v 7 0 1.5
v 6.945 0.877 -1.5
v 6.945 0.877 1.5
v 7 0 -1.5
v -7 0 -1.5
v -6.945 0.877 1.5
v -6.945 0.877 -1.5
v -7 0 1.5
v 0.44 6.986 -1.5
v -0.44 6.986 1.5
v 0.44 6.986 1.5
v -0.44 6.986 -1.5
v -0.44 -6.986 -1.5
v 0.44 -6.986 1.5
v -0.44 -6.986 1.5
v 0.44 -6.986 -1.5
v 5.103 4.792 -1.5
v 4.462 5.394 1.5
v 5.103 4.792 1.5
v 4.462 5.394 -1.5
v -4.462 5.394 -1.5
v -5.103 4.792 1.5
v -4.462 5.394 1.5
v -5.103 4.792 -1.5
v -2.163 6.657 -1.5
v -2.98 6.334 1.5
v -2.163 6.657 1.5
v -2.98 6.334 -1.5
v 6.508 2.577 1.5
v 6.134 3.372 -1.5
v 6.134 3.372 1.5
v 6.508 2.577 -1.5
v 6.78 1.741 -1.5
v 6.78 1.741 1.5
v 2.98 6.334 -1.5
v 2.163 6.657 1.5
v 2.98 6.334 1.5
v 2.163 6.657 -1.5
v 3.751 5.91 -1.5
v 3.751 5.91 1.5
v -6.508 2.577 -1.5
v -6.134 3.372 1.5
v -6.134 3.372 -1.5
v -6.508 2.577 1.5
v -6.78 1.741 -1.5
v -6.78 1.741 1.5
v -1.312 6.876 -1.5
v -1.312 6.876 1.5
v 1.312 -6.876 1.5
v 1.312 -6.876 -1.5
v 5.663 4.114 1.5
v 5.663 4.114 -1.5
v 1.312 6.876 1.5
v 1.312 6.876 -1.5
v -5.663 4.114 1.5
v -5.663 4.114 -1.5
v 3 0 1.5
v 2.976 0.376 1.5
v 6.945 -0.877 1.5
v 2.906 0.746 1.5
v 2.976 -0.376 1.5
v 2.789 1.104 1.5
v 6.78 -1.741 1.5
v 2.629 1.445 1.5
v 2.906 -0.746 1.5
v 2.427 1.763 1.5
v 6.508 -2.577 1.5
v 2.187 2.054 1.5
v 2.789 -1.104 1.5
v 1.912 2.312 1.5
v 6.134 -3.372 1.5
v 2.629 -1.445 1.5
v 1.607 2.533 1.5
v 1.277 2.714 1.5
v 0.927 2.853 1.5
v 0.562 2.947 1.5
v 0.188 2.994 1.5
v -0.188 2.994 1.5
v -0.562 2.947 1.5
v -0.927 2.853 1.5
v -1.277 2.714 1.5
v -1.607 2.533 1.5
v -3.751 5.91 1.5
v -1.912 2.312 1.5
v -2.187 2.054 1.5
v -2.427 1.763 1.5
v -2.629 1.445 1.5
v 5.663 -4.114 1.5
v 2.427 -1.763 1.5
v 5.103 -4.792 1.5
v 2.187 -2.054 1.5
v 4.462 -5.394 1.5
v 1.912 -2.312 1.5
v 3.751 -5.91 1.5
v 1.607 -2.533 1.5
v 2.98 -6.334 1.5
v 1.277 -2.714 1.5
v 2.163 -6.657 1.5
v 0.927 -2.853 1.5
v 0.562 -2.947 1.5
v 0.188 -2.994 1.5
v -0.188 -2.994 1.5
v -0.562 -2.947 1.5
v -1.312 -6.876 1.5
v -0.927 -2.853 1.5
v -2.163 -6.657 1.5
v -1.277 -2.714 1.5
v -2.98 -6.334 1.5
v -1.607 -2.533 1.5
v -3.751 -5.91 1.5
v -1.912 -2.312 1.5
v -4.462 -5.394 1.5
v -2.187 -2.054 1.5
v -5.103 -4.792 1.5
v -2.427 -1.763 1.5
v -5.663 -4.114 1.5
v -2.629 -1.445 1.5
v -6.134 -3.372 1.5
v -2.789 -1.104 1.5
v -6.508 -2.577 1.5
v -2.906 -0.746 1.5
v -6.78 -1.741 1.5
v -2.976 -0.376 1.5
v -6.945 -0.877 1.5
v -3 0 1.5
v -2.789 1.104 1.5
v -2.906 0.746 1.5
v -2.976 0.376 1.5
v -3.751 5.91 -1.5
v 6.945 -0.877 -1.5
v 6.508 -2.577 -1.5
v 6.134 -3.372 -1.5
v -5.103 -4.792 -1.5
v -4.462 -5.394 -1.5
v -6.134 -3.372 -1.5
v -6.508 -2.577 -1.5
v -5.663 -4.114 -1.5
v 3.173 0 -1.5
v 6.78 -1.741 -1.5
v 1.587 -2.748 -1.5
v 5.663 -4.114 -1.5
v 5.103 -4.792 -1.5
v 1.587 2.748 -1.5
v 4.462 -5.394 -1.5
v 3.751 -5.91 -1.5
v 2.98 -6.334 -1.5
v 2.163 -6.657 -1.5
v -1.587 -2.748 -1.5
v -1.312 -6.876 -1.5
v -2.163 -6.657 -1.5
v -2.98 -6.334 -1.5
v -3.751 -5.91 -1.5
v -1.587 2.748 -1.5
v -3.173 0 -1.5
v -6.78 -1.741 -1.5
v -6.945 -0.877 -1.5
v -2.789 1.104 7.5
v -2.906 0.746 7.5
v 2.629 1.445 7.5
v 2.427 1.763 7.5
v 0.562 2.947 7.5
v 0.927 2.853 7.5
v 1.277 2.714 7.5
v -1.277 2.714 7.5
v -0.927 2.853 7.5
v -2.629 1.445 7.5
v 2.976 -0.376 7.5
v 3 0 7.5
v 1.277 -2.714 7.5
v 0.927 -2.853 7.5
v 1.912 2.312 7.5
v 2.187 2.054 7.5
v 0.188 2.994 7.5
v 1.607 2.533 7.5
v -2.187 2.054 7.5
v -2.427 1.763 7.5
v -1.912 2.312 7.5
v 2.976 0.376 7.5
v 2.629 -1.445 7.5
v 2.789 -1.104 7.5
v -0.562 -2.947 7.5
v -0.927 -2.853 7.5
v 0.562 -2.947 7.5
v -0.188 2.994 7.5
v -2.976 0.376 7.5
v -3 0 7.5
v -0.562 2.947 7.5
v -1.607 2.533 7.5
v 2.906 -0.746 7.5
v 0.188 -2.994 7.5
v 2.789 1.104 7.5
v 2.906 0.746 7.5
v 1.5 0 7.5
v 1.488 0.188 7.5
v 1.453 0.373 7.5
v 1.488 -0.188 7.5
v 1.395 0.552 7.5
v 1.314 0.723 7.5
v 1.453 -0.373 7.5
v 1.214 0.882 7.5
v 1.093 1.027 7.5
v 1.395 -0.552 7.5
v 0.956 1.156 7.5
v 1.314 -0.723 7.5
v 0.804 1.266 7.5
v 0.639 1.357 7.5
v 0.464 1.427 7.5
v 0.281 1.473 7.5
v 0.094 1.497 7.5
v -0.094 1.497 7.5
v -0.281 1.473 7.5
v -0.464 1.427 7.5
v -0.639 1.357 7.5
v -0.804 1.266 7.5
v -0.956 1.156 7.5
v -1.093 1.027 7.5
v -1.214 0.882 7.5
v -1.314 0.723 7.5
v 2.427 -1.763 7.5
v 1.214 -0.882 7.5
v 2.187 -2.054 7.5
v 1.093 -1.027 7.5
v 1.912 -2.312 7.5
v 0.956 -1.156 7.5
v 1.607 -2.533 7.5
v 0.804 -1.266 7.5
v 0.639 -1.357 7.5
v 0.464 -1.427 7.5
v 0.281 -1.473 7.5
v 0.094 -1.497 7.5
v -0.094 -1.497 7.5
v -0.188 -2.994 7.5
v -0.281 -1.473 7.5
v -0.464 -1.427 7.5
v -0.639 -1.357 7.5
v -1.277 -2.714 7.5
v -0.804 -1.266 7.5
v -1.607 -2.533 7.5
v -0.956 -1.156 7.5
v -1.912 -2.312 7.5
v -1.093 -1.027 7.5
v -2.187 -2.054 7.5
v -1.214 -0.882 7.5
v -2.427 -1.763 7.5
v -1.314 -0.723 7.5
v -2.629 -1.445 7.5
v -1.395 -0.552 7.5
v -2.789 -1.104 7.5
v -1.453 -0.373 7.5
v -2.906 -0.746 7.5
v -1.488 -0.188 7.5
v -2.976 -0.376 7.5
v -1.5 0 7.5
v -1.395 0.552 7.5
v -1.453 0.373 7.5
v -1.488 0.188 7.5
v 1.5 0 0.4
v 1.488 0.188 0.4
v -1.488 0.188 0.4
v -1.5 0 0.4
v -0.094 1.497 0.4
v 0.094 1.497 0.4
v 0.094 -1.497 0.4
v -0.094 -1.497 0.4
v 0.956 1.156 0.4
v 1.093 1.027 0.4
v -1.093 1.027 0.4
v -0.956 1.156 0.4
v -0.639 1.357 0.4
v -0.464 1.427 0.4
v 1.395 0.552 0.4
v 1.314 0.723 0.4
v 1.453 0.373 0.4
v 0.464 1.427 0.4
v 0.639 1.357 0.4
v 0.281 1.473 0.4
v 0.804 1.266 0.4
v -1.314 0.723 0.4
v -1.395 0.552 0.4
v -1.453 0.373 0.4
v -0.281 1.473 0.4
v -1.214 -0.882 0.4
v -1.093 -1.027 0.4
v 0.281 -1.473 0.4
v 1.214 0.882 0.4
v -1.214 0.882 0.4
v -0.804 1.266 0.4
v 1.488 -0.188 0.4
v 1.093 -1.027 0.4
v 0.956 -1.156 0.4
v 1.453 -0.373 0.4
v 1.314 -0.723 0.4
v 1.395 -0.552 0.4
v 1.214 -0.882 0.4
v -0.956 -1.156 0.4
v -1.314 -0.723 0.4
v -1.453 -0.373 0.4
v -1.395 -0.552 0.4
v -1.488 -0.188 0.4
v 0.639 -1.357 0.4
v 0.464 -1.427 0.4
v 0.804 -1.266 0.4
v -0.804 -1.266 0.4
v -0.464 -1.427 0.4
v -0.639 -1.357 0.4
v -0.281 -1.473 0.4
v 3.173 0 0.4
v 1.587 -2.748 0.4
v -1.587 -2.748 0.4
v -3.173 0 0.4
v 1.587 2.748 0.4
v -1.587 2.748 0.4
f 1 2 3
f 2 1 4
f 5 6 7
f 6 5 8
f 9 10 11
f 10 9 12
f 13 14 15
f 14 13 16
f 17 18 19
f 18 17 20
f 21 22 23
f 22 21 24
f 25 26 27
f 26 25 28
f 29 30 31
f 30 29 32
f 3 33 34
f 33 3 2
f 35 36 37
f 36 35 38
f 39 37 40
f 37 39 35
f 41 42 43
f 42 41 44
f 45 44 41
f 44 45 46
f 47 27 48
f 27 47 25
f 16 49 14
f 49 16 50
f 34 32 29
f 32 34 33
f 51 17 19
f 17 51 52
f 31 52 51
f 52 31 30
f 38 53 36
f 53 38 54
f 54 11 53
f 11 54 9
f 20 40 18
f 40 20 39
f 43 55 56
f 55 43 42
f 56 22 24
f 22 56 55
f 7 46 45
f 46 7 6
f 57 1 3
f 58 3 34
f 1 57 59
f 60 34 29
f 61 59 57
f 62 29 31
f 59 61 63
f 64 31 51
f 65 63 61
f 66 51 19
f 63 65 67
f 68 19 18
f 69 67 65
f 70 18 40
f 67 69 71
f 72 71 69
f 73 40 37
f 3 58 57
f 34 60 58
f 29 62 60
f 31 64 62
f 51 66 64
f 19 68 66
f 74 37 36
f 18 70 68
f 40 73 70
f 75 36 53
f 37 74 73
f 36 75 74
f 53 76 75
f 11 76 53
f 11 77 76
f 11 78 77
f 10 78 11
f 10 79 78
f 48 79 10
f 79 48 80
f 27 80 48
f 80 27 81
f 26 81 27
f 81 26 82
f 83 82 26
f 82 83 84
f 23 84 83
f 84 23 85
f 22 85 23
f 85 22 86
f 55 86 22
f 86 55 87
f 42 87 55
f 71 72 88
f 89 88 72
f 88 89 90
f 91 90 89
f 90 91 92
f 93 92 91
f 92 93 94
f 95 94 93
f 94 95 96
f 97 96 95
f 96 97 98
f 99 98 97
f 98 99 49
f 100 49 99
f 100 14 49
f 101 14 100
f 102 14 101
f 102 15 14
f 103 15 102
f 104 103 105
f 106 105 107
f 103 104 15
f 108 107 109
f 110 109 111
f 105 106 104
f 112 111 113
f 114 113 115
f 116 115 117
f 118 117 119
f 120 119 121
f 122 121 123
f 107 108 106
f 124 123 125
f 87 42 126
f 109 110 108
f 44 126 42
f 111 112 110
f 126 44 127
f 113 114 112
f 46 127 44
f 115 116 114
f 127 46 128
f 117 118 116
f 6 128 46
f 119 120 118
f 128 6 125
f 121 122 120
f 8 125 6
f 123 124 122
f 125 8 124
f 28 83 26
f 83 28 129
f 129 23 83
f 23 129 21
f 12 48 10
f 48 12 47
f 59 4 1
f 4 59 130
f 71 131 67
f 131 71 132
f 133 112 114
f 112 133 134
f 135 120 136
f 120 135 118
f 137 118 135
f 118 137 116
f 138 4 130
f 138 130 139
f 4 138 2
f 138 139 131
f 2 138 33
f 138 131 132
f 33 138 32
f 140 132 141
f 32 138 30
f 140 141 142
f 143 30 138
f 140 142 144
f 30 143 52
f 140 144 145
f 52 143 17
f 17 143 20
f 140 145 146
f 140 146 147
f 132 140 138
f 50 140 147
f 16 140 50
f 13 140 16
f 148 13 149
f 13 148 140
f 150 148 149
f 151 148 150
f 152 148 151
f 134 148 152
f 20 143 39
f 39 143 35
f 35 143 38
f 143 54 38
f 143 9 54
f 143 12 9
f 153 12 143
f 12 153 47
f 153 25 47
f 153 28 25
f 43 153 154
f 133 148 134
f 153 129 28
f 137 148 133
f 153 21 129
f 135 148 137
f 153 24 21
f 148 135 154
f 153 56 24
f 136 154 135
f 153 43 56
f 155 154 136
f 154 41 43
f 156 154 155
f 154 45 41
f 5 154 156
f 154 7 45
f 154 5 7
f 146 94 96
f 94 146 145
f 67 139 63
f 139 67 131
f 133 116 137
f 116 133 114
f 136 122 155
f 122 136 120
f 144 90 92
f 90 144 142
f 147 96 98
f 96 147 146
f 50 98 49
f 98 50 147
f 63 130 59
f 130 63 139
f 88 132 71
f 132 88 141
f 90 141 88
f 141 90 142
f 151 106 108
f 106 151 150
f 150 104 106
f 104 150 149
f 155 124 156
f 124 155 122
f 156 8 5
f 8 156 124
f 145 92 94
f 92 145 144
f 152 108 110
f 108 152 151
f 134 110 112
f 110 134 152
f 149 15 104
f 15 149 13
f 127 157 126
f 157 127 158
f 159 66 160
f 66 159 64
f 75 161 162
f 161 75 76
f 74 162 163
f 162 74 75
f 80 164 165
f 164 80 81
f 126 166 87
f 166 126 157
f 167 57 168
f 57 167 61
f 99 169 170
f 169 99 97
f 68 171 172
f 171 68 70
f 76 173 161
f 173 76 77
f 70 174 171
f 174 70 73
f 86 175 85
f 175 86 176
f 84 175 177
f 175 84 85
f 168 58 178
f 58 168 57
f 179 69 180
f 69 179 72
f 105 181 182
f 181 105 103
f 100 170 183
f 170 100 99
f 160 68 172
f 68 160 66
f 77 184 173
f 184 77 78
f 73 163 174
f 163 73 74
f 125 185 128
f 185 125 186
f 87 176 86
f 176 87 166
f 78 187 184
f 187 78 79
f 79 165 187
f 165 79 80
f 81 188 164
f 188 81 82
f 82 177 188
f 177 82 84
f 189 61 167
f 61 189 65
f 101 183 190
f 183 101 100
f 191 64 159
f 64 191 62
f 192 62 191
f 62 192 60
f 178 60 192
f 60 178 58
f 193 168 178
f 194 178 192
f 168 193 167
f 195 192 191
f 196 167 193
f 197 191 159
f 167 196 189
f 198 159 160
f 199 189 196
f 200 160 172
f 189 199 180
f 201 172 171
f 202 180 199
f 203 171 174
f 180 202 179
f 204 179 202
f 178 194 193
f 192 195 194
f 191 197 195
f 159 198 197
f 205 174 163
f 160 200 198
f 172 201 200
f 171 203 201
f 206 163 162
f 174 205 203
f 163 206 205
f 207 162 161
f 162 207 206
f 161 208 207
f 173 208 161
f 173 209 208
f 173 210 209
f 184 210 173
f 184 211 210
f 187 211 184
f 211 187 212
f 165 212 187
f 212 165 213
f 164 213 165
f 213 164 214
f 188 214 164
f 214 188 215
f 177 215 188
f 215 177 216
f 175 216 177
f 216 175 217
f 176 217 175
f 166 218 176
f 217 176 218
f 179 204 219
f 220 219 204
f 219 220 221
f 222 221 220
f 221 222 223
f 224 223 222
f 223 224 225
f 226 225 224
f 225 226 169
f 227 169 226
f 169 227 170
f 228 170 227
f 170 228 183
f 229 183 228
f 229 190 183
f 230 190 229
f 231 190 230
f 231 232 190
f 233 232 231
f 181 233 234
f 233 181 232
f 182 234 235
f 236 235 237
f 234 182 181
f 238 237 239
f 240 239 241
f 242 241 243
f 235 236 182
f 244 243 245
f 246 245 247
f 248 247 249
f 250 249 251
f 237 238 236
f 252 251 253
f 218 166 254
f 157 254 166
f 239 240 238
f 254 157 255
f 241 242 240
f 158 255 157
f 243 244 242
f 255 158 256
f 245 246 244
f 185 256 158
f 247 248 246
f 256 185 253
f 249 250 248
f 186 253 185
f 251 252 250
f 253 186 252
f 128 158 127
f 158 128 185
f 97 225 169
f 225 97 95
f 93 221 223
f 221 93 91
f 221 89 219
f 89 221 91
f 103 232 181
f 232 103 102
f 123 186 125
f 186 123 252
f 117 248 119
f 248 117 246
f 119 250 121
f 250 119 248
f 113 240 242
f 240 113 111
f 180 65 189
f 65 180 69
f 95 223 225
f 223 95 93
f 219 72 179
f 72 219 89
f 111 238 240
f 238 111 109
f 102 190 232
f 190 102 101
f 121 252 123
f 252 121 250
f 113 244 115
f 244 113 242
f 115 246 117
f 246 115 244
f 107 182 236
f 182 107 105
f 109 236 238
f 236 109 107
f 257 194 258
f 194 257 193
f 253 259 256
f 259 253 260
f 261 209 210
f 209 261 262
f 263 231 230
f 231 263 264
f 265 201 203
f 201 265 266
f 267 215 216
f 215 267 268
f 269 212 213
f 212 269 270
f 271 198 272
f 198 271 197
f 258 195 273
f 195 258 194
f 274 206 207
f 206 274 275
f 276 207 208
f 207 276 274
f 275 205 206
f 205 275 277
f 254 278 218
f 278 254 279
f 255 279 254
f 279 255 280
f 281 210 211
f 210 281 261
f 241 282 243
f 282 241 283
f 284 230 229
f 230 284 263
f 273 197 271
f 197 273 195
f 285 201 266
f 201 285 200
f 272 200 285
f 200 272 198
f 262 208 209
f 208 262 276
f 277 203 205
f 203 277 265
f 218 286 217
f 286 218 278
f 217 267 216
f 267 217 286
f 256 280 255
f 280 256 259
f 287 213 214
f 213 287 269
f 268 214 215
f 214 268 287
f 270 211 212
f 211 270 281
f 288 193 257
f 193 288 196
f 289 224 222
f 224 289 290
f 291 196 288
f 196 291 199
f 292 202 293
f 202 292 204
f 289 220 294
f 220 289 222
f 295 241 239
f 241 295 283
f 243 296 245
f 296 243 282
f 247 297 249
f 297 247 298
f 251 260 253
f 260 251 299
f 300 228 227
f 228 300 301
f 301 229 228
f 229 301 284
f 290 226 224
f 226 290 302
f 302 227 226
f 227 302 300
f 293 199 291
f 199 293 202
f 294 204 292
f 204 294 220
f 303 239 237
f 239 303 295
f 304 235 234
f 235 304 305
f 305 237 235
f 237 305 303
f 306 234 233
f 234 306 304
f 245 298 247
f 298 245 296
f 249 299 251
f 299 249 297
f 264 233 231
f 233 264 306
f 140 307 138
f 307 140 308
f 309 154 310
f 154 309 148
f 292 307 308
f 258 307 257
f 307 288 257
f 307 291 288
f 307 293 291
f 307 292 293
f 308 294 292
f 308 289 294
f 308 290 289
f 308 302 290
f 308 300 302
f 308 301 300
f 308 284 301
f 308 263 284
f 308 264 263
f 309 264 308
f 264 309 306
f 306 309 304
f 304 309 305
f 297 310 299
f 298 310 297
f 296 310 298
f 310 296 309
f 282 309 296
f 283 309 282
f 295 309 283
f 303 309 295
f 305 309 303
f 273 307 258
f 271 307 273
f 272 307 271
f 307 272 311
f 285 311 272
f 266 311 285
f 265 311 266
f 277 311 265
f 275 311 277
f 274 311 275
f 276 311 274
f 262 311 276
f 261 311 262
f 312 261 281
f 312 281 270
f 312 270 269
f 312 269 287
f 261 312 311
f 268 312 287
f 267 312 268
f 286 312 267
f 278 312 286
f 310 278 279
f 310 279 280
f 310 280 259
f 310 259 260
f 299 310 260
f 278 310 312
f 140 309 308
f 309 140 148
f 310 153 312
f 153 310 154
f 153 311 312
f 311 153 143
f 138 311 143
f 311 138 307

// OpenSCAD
$fn = 50;


difference() {
	union() {
		translate(v = [0, 0, -1.5000000000]) {
			rotate(a = [0, 0, 0]) {
				cylinder(h = 3, r = 7.0000000000);
			}
		}
		translate(v = [0, 0, -1.5000000000]) {
			rotate(a = [0, 0, 0]) {
				cylinder(h = 9, r = 3.0000000000);
			}
		}
	}
	union() {
		translate(v = [0, 0, -125.0000000000]) {
			rotate(a = [0, 0, 0]) {
				cylinder(h = 250, r = 1.5000000000);
			}
		}
		translate(v = [0, 0, -2.1000000000]) {
			rotate(a = [0, 0, 0]) {
				#translate(v = [0, 0, 0]) {
					rotate(a = [0, 0, 0]) {
						linear_extrude(height = 2.5000000000) {
							polygon(points = [[3.1735000000, 0.0000000000], [1.5867500000, 2.7483316189], [-1.5867500000, 2.7483316189], [-3.1735000000, 0.0000000000], [-1.5867500000, -2.7483316189], [1.5867500000, -2.7483316189]]);
						}
					}
				}
			}
		}
	}
}
